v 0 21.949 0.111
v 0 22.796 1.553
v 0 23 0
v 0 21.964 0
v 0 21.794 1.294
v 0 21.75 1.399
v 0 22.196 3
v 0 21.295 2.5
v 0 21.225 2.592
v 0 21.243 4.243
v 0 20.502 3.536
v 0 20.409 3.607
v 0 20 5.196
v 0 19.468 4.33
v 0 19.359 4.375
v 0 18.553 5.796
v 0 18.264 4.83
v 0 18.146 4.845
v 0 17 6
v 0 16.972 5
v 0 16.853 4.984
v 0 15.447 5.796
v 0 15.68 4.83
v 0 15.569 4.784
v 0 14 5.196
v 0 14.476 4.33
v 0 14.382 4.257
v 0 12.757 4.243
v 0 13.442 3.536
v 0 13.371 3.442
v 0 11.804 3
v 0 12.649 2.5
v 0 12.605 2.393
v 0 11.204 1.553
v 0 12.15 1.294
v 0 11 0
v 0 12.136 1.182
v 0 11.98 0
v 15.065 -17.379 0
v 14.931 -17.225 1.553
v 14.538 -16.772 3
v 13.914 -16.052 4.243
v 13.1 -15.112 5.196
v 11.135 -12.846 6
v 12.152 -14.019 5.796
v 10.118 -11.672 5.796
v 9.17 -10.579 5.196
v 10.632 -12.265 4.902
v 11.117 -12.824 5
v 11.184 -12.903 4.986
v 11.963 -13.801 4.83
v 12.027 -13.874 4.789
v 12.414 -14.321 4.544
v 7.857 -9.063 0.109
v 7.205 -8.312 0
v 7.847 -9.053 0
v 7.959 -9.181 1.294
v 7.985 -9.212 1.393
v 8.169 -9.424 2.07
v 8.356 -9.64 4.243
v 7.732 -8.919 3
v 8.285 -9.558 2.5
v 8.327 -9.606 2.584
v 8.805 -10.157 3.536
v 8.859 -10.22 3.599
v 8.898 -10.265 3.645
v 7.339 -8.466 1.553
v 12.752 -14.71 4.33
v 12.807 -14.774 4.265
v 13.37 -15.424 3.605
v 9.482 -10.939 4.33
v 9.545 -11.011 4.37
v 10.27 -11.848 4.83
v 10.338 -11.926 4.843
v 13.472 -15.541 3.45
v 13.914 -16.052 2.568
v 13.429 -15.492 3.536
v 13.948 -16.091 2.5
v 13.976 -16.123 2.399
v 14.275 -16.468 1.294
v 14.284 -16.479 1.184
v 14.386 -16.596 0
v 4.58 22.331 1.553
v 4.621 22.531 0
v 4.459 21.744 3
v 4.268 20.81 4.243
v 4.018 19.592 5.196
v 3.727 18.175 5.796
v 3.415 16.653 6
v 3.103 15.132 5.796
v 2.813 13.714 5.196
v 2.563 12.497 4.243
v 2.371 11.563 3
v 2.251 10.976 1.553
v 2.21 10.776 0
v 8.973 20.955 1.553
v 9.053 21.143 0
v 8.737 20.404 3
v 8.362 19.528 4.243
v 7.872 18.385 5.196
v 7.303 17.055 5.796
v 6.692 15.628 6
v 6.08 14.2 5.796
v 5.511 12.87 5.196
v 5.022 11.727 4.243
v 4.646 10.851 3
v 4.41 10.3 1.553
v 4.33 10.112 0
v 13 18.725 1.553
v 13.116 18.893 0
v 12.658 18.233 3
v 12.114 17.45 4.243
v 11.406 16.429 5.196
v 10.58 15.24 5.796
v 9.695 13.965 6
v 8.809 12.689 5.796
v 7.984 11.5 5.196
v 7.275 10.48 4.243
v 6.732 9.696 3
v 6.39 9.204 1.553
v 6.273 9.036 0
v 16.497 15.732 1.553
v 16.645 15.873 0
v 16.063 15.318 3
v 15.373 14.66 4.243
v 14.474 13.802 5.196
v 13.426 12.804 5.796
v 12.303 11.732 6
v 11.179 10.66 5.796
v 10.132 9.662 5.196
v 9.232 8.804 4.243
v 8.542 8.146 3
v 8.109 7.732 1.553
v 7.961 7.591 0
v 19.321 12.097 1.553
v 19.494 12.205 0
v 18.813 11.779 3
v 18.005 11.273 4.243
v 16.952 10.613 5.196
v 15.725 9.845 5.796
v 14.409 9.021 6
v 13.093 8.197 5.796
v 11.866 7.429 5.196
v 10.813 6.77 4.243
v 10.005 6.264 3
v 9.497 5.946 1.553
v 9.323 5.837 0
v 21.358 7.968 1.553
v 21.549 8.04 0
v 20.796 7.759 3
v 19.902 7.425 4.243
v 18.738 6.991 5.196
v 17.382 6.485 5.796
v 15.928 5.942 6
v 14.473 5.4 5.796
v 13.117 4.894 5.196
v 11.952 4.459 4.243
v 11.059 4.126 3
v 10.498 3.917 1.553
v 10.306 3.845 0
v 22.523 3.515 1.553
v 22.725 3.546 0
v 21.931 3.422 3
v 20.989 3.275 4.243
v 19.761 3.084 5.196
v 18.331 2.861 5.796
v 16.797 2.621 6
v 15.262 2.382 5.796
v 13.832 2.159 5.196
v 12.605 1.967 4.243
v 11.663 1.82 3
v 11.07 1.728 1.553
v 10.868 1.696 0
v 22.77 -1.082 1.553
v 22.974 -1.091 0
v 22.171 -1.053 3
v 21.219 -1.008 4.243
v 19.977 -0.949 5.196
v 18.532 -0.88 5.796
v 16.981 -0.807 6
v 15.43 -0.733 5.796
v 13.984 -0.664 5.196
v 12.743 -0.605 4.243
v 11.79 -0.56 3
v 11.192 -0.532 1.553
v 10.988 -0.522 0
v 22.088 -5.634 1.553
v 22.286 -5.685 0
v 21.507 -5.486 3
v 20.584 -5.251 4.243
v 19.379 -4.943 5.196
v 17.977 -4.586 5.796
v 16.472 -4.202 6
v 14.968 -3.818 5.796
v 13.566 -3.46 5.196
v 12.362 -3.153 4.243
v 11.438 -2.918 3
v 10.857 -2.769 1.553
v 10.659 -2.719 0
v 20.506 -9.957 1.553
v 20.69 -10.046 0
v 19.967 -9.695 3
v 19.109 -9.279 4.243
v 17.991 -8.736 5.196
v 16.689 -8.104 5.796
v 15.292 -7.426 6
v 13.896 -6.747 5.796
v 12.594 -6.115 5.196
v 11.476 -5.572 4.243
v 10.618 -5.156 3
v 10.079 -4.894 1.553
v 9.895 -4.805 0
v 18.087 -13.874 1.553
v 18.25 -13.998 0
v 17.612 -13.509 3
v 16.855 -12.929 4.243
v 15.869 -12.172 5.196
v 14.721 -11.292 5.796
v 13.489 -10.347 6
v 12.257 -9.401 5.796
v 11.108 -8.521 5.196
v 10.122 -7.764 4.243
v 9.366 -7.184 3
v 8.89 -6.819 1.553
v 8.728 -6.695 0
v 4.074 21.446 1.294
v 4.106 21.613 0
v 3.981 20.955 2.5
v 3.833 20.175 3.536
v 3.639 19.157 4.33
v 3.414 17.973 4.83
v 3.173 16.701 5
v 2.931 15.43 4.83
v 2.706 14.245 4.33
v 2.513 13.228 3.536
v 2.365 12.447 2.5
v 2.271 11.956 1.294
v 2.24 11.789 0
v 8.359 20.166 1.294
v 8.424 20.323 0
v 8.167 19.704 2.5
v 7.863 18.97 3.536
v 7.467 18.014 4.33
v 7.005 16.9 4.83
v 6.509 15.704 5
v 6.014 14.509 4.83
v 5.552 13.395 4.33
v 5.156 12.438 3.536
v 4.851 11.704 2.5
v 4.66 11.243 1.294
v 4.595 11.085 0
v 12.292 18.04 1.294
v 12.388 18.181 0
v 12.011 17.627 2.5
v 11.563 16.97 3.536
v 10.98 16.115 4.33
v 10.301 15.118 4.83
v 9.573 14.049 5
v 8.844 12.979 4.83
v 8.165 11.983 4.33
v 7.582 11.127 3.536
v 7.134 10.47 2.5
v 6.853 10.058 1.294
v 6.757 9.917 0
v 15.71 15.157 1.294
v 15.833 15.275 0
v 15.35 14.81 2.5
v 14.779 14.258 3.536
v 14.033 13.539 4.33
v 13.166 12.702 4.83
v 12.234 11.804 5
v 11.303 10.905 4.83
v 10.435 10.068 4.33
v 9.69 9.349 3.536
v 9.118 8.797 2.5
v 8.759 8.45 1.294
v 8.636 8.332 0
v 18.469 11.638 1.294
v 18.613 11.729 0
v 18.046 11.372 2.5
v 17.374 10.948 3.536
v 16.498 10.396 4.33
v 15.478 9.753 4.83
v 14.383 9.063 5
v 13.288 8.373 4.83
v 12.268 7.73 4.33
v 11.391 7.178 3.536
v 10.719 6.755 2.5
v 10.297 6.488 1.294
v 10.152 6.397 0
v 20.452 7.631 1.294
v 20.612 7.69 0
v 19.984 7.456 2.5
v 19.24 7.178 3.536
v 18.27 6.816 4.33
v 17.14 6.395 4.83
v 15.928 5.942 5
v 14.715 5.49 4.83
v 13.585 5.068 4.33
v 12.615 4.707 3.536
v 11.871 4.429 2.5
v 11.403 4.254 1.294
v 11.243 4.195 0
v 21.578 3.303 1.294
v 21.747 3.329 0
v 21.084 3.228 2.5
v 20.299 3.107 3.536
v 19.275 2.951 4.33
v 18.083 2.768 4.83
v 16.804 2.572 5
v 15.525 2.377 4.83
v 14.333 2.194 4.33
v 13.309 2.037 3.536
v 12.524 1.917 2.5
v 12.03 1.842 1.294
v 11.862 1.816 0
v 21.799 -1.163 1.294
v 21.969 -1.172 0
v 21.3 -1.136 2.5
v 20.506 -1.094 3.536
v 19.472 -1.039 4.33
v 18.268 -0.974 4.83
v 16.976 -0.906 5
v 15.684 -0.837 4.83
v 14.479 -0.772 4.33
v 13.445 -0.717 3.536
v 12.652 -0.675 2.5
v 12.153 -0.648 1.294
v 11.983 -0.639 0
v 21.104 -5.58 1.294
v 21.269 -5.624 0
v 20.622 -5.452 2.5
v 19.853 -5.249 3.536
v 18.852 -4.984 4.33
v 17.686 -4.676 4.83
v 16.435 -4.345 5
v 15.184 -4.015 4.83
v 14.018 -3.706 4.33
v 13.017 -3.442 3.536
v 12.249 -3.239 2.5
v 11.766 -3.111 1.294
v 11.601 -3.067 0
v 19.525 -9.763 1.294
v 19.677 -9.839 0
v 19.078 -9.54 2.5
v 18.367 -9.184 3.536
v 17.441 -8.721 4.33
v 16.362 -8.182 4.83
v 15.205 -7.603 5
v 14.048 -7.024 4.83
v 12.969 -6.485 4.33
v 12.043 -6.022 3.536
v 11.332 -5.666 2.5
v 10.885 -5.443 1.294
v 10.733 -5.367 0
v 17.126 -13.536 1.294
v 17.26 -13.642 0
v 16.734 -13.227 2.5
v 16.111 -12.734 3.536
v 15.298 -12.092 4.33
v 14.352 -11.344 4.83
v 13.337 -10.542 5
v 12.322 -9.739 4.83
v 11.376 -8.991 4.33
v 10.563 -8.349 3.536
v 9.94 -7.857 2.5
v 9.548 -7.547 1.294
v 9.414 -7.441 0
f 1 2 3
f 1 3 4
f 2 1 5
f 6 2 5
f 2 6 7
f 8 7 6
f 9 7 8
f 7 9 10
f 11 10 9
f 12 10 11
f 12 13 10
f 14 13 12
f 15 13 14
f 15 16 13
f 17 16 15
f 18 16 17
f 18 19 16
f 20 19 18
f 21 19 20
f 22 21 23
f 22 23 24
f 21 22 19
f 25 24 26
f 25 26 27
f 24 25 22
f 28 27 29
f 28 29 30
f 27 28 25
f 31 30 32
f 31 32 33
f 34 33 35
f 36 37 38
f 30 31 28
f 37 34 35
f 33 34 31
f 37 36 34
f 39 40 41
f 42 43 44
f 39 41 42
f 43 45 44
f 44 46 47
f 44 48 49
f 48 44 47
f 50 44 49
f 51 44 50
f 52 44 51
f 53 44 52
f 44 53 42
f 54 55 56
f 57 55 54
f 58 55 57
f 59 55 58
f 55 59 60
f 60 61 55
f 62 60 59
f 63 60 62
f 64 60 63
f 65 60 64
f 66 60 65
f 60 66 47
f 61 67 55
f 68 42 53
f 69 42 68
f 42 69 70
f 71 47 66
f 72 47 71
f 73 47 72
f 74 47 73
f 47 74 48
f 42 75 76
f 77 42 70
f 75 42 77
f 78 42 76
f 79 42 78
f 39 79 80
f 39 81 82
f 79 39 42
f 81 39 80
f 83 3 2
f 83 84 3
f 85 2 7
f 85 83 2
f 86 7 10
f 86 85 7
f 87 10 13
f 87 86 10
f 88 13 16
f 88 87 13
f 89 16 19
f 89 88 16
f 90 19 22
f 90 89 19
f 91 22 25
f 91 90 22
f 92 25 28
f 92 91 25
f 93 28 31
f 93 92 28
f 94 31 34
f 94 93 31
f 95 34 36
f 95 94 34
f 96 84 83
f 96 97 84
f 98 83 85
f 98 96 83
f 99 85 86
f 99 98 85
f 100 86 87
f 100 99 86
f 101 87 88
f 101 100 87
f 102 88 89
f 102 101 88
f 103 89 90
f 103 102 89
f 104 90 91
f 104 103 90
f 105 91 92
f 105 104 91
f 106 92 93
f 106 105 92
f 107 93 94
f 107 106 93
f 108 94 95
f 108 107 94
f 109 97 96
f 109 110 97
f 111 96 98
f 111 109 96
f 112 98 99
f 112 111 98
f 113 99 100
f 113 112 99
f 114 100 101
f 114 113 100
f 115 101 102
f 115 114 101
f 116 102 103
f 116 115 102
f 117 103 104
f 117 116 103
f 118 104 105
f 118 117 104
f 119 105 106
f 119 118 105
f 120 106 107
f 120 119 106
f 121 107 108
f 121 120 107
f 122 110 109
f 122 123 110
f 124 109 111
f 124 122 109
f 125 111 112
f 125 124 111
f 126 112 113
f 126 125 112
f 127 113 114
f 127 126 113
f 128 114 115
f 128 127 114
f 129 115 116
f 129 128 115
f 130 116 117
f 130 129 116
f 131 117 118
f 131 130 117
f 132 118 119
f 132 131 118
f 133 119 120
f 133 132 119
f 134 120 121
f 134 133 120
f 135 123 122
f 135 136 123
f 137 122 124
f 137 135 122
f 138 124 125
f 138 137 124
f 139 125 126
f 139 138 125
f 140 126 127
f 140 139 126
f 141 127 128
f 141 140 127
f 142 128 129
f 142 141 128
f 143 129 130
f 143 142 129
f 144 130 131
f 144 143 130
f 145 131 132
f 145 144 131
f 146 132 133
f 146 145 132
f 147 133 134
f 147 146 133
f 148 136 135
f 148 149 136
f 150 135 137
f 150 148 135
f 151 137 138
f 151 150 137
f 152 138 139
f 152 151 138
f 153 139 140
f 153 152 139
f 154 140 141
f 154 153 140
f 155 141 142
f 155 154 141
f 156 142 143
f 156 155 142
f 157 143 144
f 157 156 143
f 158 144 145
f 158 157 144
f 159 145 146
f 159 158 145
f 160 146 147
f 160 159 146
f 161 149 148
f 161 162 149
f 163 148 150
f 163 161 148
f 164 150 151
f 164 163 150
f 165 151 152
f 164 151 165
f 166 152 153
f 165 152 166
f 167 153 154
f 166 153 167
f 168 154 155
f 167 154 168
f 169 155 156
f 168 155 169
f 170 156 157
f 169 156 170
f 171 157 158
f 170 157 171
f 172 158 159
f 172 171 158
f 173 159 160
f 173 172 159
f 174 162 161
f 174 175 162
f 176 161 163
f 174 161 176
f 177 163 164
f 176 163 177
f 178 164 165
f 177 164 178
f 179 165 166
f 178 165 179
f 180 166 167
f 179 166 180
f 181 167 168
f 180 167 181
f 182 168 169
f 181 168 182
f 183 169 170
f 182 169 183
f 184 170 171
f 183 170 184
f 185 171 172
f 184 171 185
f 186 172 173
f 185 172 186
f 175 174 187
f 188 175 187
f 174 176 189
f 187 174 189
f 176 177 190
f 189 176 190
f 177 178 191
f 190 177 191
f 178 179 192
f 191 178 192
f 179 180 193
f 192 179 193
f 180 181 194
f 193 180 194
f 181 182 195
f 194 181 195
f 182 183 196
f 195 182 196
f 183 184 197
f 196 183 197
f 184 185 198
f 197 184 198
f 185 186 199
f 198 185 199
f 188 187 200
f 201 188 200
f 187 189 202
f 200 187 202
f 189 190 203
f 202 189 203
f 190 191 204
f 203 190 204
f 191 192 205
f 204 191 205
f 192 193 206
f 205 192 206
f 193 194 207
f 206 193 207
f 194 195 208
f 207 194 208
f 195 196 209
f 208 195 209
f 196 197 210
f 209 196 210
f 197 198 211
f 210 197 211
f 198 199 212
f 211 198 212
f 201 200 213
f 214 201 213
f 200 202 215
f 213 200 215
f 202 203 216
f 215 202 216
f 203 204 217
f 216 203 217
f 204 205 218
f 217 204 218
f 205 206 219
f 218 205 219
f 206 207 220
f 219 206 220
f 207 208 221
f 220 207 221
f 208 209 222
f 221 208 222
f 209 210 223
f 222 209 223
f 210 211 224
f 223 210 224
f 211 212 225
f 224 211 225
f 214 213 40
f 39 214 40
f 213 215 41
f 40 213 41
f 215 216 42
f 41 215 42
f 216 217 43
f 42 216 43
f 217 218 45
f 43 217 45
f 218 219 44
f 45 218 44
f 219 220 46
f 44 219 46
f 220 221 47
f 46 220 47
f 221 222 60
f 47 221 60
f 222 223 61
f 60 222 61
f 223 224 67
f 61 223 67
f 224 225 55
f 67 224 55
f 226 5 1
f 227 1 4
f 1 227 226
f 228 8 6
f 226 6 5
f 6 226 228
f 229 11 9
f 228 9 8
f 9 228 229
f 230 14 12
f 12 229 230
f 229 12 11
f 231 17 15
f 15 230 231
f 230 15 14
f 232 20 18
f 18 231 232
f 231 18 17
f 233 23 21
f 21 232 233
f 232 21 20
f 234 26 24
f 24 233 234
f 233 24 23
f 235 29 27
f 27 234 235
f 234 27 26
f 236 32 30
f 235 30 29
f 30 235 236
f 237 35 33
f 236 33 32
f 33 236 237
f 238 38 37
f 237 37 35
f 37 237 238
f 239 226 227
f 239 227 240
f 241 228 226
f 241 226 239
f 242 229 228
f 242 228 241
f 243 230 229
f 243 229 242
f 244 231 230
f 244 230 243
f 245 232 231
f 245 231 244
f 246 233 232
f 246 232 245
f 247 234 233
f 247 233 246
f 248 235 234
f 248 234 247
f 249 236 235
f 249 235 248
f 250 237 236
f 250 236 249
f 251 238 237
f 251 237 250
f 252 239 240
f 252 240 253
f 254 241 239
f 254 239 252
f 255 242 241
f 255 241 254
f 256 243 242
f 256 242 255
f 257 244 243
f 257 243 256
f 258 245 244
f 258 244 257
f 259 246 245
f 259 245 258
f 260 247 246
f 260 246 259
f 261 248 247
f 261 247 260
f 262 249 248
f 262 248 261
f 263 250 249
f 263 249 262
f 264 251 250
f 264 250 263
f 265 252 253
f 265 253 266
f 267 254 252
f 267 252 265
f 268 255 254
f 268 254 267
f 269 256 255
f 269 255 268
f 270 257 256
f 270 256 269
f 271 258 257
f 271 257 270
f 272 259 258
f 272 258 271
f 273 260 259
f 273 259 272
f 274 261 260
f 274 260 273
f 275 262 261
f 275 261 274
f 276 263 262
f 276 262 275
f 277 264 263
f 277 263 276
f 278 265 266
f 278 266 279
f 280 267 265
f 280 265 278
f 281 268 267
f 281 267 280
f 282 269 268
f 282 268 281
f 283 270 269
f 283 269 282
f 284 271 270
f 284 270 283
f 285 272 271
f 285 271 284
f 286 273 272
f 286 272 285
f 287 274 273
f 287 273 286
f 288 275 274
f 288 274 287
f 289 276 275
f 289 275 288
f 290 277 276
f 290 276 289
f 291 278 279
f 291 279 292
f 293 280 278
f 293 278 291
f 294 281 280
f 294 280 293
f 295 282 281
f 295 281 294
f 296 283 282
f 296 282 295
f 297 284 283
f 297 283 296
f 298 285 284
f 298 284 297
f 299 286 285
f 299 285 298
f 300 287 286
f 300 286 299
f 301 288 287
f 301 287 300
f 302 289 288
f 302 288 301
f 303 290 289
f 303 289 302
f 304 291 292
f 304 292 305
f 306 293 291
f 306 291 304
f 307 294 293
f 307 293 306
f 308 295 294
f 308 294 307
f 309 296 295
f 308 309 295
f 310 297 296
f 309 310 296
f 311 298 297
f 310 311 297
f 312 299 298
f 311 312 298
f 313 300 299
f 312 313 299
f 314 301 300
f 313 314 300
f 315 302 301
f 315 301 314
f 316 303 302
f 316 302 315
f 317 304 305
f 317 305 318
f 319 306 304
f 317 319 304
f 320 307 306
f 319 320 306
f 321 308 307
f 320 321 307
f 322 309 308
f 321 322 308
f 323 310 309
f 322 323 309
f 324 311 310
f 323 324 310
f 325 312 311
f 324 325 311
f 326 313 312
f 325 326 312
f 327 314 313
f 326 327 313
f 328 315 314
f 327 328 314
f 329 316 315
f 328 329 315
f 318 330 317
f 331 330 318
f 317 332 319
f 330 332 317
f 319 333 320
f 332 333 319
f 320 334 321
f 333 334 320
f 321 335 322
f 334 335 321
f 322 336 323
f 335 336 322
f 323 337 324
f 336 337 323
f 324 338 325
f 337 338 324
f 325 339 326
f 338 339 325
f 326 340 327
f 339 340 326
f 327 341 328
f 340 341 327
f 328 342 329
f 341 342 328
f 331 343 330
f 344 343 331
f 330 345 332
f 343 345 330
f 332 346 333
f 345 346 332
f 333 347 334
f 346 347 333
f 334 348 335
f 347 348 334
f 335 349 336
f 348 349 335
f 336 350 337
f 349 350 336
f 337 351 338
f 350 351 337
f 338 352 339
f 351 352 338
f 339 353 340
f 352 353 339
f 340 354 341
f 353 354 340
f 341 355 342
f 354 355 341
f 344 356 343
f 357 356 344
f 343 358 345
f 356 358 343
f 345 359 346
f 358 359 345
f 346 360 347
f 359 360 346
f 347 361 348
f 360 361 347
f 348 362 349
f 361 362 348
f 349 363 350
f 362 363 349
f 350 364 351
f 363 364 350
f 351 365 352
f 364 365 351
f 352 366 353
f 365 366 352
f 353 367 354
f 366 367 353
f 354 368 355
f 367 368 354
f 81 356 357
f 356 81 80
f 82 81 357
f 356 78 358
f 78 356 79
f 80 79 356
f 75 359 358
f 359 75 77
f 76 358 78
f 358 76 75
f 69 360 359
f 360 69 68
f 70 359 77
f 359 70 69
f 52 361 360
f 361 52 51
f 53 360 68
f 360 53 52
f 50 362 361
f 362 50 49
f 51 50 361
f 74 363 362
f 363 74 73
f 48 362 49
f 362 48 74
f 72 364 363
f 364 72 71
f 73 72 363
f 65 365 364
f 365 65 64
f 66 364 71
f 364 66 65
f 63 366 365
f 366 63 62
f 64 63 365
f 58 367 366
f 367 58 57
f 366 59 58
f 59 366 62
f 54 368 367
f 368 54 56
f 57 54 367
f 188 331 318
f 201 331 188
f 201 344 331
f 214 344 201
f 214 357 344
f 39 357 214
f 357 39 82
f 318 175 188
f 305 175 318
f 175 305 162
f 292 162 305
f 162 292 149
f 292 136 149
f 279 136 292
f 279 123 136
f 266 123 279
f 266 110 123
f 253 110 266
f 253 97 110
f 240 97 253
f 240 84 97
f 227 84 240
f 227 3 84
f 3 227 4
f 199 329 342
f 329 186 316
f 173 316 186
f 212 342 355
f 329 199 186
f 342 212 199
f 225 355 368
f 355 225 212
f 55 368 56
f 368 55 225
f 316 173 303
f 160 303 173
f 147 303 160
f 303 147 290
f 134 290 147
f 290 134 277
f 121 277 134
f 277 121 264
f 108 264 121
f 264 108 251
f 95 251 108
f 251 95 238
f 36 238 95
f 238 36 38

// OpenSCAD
// file: ../build_environments.scad
// build_environments.scad: modules to build level sections
//

module pool(diameter=10.0, wall_height=2.0, step_width=3.0, connections=[])
{
    difference() {
        union() {
        difference() {
            cylinder(h=0.5,r1=diameter+step_width,r2=diameter+step_width,$fn=48);
            translate([0,0,-0.1])
                cylinder(h=0.7,r1=diameter,r2=diameter,$fn=48);
        }
        difference() {
            cylinder(h=wall_height,r1=diameter+step_width+1.0,r2=diameter+step_width+1.0,$fn=48);
            translate([0,0,-0.1])
                cylinder(h=wall_height+0.2,r1=diameter+step_width,r2=diameter+step_width,$fn=48);
        }
        }
    
        for (c = connections)
        {
            rotate([0,90,0]) {
                angle = atan2(c[1],c[0]);
                rotate([-angle,0,0]) {
                    cylinder(h=diameter+5.0,r1=c[2],r2=c[2],$fn=48);
                }
            }
        }
    }
}

module straight(length=10.0, width=2.0, dy1=0.0, dy2=0.0, dz=0.0)
{
    dims = [0, 0, 0, 0, 0, (dz/length)];
    matrix = [
        [ 1, dims[0], dims[1], 0 ],
        [ dims[2], 1, dims[4], 0 ],
        [ dims[5], dims[3], 1, 0 ],
        [ 0, 0, 0, 1 ]
    ];
    multmatrix(matrix)
    difference() {
        translate([dy1,0,0])
        union() {
            rotate([0,90,0]) {
                difference() {
                    cylinder(h=(length-dy1-dy2),r1=width+1.0,r2=width+1.0,$fn=24);
                    translate([0,0,-0.1])
                        cylinder(h=(length-dy1-dy2+0.2),r1=width,r2=width,$fn=24);
                }
                difference() {
                    cylinder(h=1.0,r1=width+2.0,r2=width+2.0,$fn=24);
                    translate([0,0,-0.1])
                        cylinder(h=1.2,r1=width,r2=width,$fn=24);
                }
                translate([0,0,(length-dy1-dy2)-1.0]) {
                    difference() {
                        cylinder(h=1.0,r1=width+2.0,r2=width+2.0,$fn=24);
                        translate([0,0,-0.1])
                            cylinder(h=1.2,r1=width,r2=width,$fn=24);
                    }
                }
            }
        }
        translate([0,0,-(2*width+4.0)/2])
            cube([3*length,3*length,2*width+4.0],center=true);
    }
}

module curve(p0=[0,0], center=[0,0], dir=1, angle=0.0, width=2.0)
{
    radius = sqrt((p0[0]-center[0])*(p0[0]-center[0]) + (p0[1]-center[1])*(p0[1]-center[1]));
    if (dir == 0) {
        difference() {
            rotate([0,0,-90])
            difference() {
                rotate_extrude(angle = angle, convexity = 10, $fn=32)
                    translate([radius, 0, 0])
                        circle(r = width+1.0,$fn=24);
                rotate([0,0,-1.0])
                    rotate_extrude(angle = angle+2.0, convexity = 10, $fn=32)
                        translate([radius, 0, 0])
                            circle(r = width,$fn=24);
            }
            translate([0,0,-(2*width+4.0)/2])
                cube([5*radius,5*radius,2*width+4.0],center=true);
        }
    }
    else {
        difference() {
            rotate([0,0,90])
            difference() {
                rotate_extrude(angle = -angle, convexity = 10, $fn=32)
                    translate([radius, 0, 0])
                        circle(r = width+1.0,$fn=24);
                rotate([0,0,1.0])
                    rotate_extrude(angle = -angle-2.0, convexity = 10, $fn=32)
                        translate([radius, 0, 0])
                            circle(r = width,$fn=24);
            }
            translate([0,0,-(2*width+4.0)/2])
                cube([5*radius,5*radius,2*width+4.0],center=true);
        }
    }

}

// test pool
//pool(diameter=12.0000, wall_height=3.0000, step_width=3.0000, connections=[[0.0000,-26.0000,2.0000], [23.6074,0.0000,2.0000]]);

// test straight, slope
//straight(length=26.0000, width=2.0000, dy1=11.8322, dy2=6.7082, dz=0.0000);
//straight(length=29.1549, width=12.0000, dy1=0.0000, dy2=0.0000, dz=-15.0000);

// test curve
//curve(p0=[23.6074, 0.0000], center=[23.6074, 5.0000], dir=0, angle=60.1011, width=2.0000);
//curve(p0=[33.6426, 12.4219], center=[37.9771, 9.9295], dir=1, angle=120.4627, width=2.0000);
// main file
use <../build_environments.scad>;
curve(p0=[74.4554, -275.8615], center=[62.6374, -263.6413], dir=1, angle=139.0801, width=5.0000);
